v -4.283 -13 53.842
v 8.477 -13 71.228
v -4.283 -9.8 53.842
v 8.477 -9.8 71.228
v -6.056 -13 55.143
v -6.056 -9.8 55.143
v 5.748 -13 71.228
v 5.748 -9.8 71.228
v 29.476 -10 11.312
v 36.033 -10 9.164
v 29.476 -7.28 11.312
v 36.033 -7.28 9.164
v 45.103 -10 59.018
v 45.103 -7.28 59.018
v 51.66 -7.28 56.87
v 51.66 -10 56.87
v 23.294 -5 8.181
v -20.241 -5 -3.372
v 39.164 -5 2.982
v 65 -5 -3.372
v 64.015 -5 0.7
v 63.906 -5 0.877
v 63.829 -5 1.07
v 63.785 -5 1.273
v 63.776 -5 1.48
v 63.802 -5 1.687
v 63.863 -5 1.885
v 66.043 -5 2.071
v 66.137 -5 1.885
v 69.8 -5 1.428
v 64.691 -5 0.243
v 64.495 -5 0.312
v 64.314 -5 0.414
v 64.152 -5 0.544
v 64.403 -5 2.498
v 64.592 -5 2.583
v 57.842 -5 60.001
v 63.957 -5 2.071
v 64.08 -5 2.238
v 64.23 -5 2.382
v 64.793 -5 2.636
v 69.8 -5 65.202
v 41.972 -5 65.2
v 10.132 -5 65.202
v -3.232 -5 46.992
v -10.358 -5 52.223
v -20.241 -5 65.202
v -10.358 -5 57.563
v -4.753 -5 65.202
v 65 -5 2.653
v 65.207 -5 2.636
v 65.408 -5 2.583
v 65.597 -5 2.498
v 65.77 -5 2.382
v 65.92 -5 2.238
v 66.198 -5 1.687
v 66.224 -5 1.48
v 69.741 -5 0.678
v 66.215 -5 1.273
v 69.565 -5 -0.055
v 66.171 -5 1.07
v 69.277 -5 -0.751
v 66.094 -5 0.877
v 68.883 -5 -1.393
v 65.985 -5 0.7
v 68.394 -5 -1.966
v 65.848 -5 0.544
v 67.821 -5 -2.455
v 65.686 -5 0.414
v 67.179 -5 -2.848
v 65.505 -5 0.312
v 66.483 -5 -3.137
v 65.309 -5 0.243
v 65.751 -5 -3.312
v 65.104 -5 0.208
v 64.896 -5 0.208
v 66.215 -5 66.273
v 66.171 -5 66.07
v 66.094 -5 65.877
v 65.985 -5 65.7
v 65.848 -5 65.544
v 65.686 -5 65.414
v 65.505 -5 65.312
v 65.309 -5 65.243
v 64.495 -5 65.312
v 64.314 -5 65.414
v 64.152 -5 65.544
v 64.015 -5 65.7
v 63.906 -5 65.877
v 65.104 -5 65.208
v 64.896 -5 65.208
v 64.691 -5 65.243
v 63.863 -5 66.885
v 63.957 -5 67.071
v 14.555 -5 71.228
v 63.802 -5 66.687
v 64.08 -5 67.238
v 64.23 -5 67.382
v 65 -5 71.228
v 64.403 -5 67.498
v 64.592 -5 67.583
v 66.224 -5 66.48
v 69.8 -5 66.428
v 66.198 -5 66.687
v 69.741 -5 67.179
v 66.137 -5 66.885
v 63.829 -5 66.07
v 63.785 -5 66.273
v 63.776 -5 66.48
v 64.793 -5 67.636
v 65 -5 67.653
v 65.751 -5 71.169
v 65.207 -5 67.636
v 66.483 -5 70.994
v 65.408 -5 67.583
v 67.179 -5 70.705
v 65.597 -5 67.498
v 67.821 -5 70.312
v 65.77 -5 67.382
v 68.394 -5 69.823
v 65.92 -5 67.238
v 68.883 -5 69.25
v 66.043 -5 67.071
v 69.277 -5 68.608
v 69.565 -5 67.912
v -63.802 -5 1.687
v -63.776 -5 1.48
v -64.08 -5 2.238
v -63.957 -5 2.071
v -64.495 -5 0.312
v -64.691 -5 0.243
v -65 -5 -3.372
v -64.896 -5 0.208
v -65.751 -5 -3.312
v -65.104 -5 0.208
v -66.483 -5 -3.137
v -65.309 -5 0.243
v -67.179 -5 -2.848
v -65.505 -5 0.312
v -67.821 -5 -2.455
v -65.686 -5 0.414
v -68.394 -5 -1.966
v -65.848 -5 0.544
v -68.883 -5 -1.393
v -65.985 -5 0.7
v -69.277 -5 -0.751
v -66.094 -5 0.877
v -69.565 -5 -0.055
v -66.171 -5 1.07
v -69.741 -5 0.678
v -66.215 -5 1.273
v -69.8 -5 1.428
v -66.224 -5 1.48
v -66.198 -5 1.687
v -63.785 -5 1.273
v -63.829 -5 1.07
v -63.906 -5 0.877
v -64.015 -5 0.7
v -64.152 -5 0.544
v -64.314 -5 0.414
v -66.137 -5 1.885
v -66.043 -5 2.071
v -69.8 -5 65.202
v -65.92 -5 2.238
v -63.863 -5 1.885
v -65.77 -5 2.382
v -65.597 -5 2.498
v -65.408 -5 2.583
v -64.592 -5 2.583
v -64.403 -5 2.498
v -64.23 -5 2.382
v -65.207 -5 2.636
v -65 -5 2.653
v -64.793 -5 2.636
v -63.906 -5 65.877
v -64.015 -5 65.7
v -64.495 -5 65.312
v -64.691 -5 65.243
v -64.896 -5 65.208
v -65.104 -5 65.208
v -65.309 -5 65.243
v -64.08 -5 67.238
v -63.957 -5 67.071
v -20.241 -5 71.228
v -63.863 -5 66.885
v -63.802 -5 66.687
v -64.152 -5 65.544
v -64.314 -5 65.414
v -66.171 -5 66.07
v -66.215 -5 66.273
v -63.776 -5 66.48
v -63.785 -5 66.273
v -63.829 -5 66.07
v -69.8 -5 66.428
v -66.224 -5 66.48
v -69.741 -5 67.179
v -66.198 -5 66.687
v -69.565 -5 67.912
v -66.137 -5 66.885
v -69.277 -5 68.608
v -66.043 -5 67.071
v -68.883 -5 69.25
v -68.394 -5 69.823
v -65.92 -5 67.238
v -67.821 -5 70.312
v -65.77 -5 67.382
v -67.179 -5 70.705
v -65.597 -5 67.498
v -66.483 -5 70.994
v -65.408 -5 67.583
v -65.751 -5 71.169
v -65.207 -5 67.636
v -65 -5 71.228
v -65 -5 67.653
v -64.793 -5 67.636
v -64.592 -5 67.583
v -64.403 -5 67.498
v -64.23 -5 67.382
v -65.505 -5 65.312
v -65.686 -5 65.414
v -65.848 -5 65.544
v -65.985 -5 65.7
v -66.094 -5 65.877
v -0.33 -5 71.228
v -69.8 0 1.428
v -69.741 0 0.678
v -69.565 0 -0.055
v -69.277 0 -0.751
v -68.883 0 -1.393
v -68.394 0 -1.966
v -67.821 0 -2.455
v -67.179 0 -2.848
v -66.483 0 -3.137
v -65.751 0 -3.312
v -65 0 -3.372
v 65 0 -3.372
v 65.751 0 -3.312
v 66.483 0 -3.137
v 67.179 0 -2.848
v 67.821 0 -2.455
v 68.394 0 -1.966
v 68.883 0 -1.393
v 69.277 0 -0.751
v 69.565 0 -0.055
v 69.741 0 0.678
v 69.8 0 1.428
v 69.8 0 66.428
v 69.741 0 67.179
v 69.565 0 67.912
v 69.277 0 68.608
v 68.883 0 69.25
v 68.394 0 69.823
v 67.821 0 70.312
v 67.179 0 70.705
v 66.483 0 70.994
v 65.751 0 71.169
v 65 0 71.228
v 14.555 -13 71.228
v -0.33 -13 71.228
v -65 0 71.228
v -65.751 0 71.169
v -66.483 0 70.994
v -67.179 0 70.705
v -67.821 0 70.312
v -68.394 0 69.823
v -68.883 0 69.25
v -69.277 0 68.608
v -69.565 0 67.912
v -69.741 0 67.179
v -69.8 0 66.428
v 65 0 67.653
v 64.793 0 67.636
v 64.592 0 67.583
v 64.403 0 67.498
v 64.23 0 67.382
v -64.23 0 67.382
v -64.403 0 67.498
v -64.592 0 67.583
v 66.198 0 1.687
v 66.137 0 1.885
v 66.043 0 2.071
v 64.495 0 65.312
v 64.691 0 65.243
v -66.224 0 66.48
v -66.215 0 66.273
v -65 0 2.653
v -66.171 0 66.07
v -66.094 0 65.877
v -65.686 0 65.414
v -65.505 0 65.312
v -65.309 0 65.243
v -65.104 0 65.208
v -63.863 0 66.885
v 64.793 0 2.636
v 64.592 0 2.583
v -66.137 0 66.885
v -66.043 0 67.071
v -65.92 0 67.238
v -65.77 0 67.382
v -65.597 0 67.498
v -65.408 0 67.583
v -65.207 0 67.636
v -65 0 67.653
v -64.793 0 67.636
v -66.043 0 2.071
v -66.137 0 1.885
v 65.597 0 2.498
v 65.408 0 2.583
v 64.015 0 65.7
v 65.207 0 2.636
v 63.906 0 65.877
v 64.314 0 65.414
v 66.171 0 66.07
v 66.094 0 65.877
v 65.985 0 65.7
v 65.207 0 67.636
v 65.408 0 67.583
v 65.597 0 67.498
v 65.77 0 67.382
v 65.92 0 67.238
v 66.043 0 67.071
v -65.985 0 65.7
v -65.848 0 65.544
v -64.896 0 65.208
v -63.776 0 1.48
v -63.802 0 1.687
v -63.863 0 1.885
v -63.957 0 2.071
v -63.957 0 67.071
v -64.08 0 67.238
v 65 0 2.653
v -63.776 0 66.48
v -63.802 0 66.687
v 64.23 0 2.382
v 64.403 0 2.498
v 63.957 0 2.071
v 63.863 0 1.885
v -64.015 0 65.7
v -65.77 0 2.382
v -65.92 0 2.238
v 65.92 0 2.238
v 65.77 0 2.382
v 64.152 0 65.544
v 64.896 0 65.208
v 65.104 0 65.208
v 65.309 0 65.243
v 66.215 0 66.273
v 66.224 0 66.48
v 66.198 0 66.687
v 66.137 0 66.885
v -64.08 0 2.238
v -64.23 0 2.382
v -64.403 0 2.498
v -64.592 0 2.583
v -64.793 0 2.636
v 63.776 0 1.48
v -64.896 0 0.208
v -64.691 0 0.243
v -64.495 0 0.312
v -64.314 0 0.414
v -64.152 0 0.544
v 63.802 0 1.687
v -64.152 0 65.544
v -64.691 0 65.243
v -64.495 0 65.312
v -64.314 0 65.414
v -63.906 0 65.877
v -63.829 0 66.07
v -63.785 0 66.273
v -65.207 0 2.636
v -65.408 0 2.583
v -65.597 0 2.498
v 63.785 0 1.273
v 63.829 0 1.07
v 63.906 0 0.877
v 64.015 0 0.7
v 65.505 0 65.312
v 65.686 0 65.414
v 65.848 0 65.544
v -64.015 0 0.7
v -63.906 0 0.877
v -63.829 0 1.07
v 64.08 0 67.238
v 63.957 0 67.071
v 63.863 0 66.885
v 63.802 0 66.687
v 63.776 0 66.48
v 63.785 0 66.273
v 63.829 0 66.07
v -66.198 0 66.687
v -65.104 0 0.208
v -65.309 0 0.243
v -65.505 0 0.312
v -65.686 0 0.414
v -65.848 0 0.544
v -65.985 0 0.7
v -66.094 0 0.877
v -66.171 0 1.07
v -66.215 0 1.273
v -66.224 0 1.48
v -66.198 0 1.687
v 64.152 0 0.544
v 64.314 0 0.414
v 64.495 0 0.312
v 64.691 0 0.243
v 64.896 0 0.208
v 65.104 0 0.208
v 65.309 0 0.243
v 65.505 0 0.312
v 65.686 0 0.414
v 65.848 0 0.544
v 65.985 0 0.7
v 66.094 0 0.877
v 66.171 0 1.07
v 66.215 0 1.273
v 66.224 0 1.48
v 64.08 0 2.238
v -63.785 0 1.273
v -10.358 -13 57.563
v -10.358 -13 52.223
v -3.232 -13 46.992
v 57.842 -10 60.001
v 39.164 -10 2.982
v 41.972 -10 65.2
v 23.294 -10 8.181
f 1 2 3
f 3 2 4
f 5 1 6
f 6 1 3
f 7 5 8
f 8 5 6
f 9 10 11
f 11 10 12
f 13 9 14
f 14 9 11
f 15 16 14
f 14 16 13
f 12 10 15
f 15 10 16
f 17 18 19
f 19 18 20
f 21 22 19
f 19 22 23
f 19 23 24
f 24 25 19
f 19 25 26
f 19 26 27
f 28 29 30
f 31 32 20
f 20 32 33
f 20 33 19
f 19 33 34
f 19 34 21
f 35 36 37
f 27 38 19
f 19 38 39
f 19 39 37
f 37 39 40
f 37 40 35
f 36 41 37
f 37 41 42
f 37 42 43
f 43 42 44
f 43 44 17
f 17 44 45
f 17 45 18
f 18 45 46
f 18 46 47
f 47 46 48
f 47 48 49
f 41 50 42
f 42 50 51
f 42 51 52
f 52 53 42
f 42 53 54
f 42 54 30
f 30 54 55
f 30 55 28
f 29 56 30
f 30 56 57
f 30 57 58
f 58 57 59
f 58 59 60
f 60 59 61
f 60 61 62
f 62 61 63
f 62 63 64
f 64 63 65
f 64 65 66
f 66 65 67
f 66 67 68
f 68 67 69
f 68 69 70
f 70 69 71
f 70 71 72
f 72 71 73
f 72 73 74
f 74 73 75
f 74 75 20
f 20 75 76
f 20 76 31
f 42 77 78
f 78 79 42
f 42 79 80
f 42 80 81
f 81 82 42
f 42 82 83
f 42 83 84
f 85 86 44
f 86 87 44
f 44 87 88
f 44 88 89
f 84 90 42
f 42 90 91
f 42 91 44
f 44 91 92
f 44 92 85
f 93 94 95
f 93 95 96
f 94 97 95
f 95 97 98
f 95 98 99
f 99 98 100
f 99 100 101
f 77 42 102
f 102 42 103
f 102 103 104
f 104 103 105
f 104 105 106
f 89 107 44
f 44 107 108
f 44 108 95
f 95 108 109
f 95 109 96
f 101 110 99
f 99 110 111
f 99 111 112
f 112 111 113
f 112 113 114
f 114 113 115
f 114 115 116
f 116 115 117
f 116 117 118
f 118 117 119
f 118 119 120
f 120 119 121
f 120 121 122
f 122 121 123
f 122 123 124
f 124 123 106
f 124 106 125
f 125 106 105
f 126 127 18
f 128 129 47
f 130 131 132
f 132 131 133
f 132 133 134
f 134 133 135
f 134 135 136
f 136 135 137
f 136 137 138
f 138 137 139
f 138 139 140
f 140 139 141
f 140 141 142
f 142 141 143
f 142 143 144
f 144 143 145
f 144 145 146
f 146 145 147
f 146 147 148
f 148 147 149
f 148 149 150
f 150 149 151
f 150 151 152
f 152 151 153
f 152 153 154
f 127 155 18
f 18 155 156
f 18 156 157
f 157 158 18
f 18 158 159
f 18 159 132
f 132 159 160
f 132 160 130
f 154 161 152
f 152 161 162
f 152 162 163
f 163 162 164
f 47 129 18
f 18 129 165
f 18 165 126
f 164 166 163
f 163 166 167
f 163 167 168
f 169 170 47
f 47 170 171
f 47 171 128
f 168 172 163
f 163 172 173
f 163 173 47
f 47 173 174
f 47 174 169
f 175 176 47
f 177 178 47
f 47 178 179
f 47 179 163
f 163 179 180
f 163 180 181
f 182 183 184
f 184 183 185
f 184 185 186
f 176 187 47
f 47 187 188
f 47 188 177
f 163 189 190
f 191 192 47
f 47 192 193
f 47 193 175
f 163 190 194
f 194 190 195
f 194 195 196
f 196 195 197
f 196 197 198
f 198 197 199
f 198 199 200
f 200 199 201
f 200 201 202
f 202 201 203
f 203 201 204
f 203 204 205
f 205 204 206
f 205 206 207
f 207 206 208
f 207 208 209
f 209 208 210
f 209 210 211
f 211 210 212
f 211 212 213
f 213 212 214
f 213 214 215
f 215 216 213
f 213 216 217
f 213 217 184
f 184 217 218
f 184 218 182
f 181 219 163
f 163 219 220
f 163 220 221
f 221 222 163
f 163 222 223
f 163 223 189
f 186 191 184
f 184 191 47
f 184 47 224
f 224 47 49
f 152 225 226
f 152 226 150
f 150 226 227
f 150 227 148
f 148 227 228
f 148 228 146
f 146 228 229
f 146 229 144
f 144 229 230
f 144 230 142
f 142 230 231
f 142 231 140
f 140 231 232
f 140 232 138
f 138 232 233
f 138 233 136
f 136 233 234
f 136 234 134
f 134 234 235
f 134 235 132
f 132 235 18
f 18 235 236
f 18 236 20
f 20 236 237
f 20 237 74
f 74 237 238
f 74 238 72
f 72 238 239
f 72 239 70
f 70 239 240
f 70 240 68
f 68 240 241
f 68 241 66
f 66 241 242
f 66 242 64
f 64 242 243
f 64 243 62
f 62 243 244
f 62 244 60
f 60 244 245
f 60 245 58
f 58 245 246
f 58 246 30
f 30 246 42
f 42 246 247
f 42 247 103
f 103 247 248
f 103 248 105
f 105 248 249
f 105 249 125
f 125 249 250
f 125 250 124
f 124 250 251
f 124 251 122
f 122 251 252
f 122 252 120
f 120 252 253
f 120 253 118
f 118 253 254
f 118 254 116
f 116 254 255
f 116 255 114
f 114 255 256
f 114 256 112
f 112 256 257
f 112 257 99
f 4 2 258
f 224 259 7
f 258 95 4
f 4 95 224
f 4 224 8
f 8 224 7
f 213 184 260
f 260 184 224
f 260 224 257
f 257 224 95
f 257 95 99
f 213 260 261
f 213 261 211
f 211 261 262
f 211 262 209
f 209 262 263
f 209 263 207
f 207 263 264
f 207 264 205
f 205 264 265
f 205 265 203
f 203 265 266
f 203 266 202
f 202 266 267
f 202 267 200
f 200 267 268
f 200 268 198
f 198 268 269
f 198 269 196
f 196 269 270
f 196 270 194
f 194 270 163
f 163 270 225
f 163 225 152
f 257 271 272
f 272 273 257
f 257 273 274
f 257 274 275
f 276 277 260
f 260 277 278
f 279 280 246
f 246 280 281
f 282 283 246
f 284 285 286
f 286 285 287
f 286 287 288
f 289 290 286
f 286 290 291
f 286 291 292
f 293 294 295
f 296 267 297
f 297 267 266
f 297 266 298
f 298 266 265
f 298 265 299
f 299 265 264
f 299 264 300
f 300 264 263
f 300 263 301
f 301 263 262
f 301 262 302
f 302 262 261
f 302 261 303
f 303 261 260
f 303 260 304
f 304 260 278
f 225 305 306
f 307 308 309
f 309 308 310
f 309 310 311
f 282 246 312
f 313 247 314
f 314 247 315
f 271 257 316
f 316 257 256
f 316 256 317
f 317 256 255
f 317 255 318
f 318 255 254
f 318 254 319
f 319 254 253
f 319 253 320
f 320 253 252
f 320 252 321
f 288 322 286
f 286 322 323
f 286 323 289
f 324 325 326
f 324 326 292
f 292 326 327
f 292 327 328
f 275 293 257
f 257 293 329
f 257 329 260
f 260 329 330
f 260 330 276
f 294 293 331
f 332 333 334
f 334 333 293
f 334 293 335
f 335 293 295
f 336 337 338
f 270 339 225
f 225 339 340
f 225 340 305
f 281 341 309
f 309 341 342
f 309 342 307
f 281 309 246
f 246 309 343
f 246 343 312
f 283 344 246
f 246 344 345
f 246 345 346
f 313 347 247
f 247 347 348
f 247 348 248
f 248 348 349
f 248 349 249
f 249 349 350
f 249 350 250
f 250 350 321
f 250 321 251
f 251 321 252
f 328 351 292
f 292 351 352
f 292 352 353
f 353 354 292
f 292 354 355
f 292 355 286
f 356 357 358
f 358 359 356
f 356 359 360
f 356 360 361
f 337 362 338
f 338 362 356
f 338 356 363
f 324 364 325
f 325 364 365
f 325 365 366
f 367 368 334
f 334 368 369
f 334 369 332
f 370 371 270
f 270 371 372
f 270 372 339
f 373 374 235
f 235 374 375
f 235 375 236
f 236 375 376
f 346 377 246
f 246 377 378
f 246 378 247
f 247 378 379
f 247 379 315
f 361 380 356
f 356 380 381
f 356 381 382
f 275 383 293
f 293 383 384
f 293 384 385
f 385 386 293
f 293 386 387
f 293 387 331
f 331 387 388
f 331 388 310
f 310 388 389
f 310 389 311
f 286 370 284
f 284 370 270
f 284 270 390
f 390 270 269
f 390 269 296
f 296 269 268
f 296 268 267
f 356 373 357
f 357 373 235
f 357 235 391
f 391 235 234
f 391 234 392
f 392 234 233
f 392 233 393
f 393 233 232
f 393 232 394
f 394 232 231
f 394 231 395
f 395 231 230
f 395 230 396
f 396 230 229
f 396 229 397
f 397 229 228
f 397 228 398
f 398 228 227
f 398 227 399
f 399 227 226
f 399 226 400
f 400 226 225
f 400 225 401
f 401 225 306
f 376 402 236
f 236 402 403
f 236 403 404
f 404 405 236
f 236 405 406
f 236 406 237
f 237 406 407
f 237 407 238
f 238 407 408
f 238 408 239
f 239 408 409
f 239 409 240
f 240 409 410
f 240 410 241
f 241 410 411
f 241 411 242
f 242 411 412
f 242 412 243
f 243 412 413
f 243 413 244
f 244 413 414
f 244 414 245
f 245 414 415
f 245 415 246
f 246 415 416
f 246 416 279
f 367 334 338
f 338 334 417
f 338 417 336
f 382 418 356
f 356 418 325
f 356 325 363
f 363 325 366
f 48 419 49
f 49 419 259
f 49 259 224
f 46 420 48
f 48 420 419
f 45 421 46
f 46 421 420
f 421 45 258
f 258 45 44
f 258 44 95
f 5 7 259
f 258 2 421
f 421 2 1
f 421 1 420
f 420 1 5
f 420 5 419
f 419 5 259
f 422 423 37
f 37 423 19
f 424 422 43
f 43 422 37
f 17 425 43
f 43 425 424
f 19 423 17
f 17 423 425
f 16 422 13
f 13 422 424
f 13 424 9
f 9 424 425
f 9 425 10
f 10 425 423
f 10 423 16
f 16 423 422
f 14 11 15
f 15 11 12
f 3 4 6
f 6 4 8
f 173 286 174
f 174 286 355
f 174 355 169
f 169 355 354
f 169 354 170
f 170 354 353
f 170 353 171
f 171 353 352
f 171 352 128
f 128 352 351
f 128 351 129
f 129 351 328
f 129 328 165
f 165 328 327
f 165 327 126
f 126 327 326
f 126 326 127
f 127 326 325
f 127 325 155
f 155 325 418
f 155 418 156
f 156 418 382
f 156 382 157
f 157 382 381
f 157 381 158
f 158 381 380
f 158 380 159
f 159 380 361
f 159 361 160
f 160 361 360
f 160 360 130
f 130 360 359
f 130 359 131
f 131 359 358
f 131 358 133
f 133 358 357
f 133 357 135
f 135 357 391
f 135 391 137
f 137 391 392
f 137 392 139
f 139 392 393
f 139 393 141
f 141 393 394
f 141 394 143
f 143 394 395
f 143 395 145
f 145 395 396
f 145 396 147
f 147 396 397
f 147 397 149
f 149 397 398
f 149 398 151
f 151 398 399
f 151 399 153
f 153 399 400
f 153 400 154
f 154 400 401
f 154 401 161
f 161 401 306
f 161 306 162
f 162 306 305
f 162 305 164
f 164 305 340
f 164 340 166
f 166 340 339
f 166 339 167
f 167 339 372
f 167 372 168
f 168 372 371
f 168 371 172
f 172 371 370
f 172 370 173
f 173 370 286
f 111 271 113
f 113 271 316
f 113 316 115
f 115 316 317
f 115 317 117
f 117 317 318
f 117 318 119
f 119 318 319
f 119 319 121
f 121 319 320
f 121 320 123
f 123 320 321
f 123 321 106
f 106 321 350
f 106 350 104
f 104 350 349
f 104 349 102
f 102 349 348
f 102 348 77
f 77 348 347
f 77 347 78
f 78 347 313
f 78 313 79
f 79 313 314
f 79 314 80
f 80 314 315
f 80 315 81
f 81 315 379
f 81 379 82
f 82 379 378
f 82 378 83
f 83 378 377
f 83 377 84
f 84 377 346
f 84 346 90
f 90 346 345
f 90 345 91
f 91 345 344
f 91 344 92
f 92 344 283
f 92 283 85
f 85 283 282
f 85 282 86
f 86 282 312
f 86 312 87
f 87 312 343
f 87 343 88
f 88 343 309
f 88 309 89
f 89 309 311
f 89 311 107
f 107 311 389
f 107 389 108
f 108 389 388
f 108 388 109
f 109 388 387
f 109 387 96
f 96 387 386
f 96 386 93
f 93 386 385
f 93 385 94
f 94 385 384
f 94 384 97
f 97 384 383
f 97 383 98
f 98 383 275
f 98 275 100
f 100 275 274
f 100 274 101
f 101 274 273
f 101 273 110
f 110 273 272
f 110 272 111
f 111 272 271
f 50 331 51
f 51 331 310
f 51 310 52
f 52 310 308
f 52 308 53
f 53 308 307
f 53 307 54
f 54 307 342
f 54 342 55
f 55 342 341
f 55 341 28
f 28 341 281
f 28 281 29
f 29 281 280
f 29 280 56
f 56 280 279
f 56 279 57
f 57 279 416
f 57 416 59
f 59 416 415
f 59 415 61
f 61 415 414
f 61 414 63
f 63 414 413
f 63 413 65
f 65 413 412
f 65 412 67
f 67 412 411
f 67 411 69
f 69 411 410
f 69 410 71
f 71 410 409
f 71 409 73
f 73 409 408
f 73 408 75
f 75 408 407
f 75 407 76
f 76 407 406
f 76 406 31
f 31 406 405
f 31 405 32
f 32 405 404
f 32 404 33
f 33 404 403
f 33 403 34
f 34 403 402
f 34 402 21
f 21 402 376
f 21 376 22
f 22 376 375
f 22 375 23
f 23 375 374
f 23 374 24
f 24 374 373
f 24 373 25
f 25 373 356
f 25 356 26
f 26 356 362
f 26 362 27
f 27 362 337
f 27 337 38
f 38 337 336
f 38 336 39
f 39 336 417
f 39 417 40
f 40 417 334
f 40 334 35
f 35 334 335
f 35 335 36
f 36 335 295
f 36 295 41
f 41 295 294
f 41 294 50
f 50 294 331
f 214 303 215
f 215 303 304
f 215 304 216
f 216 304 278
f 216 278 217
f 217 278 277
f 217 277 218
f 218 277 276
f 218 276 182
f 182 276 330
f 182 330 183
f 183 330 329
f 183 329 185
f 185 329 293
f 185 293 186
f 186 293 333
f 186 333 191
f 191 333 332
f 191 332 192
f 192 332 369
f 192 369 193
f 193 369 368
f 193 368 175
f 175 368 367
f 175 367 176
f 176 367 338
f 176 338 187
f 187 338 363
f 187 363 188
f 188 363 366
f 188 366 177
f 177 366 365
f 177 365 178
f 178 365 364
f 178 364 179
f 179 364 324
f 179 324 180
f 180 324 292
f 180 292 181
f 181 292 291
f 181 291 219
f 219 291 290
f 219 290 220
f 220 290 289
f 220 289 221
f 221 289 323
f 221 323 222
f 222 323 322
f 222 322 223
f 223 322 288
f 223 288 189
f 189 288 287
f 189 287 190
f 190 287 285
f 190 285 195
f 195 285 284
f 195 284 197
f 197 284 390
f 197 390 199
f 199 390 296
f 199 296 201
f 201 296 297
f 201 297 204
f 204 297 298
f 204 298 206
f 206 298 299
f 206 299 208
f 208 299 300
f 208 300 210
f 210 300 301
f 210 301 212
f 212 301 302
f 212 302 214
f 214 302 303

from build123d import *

# Parameters (mm, degrees)
EXTRUDE_1_DEPTH     = 5
EXTRUDE_2_DEPTH     = 13
EXTRUDE_3_DEPTH     = 10
EXTRUDE_4_DEPTH     = 7.28
EXTRUDE_5_DEPTH     = 9.8
SKETCH_2_23_R       = 1.225
CUT_EXTRUDE_1_DEPTH = 5


with BuildPart() as part:
    # 草图2 → 凸台-拉伸1 (new body)
    with BuildSketch(Plane(origin=(0, 0, 0), x_dir=(1, 0, 0), z_dir=(0, 1, 0))):
        with BuildLine():
            Line((69.8, -1.428456646), (69.8, -66.428456646))
            ThreePointArc((69.8, -66.428456646), (68.39411255, -69.822569196), (65, -71.228456646))
            Line((65, -71.228456646), (-65, -71.228456646))
            ThreePointArc((-65, -71.228456646), (-68.39411255, -69.822569196), (-69.8, -66.428456646))
            Line((-69.8, -66.428456646), (-69.8, -1.428456646))
            ThreePointArc((-69.8, -1.428456646), (-68.39411255, 1.965655904), (-65, 3.371543354))
            Line((-65, 3.371543354), (65, 3.371543354))
            ThreePointArc((65, 3.371543354), (68.39411255, 1.965655904), (69.8, -1.428456646))
        make_face()
    extrude(amount=-EXTRUDE_1_DEPTH)

    # 草图2<19> → 凸台-拉伸2 (add)
    with BuildSketch(Plane(origin=(0, 0, 0), x_dir=(1, 0, 0), z_dir=(0, 1, 0))):
        Polygon((14.518227689, -71.177974158), (-3.231616409, -46.992378558), (-10.358382401, -52.222722576), (-10.358382401, -57.563452802), (-0.32961603, -71.228456646), (5.748381901, -71.228456646), (-6.056399498, -55.143488942), (-4.282789154, -53.841833708), (7.668772538, -70.126801412), (8.477278931, -71.228456646), (14.555276861, -71.228456646), align=None)
    extrude(amount=-EXTRUDE_2_DEPTH)

    # 草图2<20> → 凸台-拉伸3 (add)
    with BuildSketch(Plane(origin=(0, 0, 0), x_dir=(1, 0, 0), z_dir=(0, 1, 0))):
        Polygon((57.842076132, -60.001030407), (39.164167684, -2.982298959), (23.293954098, -8.180983477), (41.971862546, -65.199714925), align=None)
        Polygon((29.475846356, -11.312150688), (36.033000472, -9.164191217), (51.660183874, -56.869863196), (45.103029757, -59.017822667), align=None, mode=Mode.SUBTRACT)
    extrude(amount=-EXTRUDE_3_DEPTH)

    # 草图2<21> → 凸台-拉伸4 (add)
    with BuildSketch(Plane(origin=(0, 0, 0), x_dir=(1, 0, 0), z_dir=(0, 1, 0))):
        Polygon((51.660183874, -56.869863196), (36.033000472, -9.164191217), (29.475846356, -11.312150688), (45.103029757, -59.017822667), align=None)
    extrude(amount=-EXTRUDE_4_DEPTH)

    # 草图2<22> → 凸台-拉伸5 (add)
    with BuildSketch(Plane(origin=(0, 0, 0), x_dir=(1, 0, 0), z_dir=(0, 1, 0))):
        Polygon((5.748381901, -71.228456646), (8.477278931, -71.228456646), (7.668772538, -70.126801412), (-4.282789154, -53.841833708), (-6.056399498, -55.143488942), align=None)
    extrude(amount=-EXTRUDE_5_DEPTH)

    # 草图2<23> → 切除-拉伸1 (cut)
    with BuildSketch(Plane(origin=(0, 0, 0), x_dir=(1, 0, 0), z_dir=(0, 1, 0))):
        with Locations((-65, -1.428456646)):
            Circle(SKETCH_2_23_R)
        with Locations((-65, -66.428456646)):
            Circle(SKETCH_2_23_R)
        with Locations((65, -66.428456646)):
            Circle(SKETCH_2_23_R)
        with Locations((65, -1.428456646)):
            Circle(SKETCH_2_23_R)
    extrude(amount=-CUT_EXTRUDE_1_DEPTH, mode=Mode.SUBTRACT)


solid = part.part
